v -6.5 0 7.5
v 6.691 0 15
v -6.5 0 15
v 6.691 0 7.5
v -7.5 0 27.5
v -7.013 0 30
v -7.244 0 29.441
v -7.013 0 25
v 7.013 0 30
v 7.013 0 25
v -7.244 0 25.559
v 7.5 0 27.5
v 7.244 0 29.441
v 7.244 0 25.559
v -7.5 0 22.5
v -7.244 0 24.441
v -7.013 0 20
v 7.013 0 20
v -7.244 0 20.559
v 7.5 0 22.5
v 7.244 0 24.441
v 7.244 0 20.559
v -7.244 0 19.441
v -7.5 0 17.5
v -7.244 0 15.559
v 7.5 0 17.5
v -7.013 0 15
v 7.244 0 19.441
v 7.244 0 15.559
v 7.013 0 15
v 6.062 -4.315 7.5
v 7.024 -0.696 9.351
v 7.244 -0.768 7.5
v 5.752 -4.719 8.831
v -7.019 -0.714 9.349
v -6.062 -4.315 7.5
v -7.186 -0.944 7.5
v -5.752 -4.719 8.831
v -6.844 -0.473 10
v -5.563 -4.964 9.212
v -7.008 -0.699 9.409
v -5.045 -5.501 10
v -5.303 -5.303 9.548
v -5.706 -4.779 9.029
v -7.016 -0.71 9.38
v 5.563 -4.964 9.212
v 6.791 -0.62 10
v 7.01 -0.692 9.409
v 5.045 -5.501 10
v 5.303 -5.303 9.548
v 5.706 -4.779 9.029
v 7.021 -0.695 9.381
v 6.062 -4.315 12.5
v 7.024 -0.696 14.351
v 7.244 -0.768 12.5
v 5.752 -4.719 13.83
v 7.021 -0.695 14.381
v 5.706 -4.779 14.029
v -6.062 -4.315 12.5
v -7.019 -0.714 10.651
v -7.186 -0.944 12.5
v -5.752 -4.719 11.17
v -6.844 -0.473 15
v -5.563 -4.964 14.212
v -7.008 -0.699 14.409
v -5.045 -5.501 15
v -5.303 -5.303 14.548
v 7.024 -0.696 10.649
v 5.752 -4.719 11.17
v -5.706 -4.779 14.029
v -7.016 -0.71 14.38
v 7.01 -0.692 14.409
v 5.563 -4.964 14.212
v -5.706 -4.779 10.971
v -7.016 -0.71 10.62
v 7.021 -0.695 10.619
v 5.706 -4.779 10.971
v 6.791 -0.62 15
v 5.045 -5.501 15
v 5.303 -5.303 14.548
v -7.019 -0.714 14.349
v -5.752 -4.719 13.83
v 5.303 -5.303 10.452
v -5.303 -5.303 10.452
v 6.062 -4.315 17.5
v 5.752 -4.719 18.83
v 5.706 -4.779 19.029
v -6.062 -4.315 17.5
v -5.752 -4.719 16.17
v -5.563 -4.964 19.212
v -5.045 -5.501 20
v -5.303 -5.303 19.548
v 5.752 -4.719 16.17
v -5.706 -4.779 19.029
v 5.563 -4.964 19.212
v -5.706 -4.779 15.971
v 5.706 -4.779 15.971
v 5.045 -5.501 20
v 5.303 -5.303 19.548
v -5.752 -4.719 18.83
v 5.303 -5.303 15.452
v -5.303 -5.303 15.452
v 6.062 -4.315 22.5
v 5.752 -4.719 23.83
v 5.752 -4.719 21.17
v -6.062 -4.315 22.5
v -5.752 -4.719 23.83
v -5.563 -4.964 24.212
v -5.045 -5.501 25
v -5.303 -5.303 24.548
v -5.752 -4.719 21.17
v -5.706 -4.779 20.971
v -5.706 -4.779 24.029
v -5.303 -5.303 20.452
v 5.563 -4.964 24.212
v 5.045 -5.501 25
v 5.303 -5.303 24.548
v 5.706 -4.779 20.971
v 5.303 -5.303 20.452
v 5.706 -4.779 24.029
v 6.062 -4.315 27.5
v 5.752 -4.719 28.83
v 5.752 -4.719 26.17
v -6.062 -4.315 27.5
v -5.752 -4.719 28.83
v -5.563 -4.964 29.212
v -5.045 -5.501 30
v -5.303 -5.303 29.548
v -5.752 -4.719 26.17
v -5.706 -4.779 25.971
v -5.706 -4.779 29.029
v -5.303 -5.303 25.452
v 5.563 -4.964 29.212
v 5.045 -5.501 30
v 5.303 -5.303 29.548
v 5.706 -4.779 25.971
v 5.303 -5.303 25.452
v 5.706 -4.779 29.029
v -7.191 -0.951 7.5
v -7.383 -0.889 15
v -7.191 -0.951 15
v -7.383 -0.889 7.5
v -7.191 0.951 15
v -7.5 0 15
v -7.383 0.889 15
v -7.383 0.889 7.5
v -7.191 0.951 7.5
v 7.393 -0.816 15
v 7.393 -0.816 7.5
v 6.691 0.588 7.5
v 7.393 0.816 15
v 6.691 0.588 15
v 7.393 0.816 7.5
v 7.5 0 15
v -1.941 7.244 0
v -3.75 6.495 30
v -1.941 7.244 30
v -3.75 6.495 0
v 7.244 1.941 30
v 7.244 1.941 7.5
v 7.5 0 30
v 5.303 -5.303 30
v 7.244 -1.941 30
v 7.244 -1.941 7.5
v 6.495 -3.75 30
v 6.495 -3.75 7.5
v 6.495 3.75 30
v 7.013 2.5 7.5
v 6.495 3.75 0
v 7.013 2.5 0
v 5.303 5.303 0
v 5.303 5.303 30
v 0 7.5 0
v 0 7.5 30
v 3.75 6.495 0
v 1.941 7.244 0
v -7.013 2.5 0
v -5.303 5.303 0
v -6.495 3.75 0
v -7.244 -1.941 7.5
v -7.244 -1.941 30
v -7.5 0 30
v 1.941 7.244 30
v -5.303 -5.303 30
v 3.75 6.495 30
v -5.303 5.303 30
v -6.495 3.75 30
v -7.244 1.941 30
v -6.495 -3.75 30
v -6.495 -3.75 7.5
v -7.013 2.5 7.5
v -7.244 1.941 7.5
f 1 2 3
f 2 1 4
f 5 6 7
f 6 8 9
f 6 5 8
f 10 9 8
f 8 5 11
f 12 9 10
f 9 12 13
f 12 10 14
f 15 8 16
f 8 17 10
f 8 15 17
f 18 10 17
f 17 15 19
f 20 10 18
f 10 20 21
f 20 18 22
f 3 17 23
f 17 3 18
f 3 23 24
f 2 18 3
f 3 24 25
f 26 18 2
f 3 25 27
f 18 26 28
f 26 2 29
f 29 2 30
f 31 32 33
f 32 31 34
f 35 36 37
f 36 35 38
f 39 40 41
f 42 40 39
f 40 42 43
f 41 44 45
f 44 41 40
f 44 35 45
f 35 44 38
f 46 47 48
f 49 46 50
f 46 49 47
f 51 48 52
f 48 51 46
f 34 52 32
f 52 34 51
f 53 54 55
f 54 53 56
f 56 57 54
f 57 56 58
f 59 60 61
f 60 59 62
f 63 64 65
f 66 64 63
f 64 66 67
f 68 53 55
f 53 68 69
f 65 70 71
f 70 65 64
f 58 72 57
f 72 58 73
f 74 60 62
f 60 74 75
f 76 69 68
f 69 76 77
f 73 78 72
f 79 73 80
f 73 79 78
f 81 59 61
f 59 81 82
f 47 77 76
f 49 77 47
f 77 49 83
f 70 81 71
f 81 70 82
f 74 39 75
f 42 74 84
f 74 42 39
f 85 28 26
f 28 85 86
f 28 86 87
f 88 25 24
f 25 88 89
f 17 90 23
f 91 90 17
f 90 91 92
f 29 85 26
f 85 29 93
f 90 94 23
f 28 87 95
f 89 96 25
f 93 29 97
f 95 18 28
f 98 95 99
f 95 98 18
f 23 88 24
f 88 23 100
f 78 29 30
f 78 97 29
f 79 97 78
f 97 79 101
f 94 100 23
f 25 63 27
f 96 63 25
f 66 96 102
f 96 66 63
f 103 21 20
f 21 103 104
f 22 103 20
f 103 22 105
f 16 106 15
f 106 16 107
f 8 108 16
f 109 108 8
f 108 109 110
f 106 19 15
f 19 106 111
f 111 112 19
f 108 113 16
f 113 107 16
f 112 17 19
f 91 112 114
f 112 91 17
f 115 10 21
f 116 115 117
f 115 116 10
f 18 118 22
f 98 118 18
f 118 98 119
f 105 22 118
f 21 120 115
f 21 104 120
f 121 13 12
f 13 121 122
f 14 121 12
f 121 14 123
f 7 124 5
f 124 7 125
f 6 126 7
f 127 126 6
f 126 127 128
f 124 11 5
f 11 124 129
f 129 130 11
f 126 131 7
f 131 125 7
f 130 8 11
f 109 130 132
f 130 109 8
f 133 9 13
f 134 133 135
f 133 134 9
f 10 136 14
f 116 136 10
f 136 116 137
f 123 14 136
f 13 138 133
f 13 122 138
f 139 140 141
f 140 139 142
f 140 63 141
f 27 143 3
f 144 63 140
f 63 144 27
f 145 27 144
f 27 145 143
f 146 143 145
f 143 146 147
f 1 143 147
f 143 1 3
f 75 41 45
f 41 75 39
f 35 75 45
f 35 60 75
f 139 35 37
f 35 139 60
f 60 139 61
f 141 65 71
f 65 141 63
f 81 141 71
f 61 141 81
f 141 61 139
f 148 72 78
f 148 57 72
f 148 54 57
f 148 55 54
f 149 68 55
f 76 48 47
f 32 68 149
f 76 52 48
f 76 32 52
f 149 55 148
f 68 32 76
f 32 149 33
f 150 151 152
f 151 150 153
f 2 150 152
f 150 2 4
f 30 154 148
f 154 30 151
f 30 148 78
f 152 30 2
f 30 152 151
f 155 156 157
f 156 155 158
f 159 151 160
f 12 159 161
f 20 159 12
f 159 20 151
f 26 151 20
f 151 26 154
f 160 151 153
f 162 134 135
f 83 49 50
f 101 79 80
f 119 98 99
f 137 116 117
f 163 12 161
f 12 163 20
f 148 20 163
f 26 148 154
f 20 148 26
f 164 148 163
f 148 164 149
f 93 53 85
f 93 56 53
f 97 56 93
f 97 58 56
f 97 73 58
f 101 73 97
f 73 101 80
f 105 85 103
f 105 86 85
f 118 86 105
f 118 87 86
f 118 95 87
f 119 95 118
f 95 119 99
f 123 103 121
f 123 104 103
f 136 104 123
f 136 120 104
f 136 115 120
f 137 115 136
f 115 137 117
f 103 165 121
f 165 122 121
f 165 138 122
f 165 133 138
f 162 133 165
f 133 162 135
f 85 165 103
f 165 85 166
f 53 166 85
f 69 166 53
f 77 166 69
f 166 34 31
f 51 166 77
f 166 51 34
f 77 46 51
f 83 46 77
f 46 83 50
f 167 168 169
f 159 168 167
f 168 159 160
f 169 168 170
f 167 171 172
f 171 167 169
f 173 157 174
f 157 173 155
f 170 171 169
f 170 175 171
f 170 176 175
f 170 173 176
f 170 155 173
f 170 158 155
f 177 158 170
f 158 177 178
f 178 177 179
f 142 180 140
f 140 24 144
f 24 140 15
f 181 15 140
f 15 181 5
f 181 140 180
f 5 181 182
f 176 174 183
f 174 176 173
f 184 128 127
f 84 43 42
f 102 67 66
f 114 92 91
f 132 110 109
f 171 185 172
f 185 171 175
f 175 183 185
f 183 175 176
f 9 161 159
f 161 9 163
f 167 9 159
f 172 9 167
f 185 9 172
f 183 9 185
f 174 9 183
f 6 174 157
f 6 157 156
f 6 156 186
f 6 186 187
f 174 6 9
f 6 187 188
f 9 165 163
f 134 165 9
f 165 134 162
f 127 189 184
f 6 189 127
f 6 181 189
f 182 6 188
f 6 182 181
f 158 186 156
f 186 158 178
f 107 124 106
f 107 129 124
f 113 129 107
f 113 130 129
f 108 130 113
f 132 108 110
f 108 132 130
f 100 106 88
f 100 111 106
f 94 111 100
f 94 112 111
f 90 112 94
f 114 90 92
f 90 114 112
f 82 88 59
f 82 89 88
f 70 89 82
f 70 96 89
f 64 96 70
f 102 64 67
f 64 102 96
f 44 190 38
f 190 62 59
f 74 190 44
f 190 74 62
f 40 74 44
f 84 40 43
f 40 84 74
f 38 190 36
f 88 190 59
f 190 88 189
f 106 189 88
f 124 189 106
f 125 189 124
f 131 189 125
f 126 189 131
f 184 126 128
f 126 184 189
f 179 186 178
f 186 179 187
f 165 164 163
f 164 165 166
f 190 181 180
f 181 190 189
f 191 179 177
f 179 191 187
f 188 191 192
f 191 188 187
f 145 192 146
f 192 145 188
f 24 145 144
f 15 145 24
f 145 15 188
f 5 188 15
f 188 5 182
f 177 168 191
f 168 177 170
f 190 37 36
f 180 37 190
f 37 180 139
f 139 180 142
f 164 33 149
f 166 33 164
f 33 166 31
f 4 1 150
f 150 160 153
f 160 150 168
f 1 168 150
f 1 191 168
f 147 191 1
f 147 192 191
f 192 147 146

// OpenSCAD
module coupling() {
    difference() {
        // Primary cylinder
        cylinder(h=30, d=15);
        
        // Subtract half-circles for the flexible part
        for (i = [0:5]) {
            translate([0, 0, i * 5 + 2.5])
            rotate([90, 0, 0])
            cylinder(h=15, d1=15, d2=5);
        }
        
        // Holes on the end faces
        for(i = [-1, 1]) {
            translate([i*7.5, 0, 0])
                cylinder(h=30, d=2, center=true);
        }
        
        // Middle slit
        translate([0, -7.5, 0]) rotate([90, 0, 0])
        cube([15, 15, 20], center=true);
    }
}

coupling();
